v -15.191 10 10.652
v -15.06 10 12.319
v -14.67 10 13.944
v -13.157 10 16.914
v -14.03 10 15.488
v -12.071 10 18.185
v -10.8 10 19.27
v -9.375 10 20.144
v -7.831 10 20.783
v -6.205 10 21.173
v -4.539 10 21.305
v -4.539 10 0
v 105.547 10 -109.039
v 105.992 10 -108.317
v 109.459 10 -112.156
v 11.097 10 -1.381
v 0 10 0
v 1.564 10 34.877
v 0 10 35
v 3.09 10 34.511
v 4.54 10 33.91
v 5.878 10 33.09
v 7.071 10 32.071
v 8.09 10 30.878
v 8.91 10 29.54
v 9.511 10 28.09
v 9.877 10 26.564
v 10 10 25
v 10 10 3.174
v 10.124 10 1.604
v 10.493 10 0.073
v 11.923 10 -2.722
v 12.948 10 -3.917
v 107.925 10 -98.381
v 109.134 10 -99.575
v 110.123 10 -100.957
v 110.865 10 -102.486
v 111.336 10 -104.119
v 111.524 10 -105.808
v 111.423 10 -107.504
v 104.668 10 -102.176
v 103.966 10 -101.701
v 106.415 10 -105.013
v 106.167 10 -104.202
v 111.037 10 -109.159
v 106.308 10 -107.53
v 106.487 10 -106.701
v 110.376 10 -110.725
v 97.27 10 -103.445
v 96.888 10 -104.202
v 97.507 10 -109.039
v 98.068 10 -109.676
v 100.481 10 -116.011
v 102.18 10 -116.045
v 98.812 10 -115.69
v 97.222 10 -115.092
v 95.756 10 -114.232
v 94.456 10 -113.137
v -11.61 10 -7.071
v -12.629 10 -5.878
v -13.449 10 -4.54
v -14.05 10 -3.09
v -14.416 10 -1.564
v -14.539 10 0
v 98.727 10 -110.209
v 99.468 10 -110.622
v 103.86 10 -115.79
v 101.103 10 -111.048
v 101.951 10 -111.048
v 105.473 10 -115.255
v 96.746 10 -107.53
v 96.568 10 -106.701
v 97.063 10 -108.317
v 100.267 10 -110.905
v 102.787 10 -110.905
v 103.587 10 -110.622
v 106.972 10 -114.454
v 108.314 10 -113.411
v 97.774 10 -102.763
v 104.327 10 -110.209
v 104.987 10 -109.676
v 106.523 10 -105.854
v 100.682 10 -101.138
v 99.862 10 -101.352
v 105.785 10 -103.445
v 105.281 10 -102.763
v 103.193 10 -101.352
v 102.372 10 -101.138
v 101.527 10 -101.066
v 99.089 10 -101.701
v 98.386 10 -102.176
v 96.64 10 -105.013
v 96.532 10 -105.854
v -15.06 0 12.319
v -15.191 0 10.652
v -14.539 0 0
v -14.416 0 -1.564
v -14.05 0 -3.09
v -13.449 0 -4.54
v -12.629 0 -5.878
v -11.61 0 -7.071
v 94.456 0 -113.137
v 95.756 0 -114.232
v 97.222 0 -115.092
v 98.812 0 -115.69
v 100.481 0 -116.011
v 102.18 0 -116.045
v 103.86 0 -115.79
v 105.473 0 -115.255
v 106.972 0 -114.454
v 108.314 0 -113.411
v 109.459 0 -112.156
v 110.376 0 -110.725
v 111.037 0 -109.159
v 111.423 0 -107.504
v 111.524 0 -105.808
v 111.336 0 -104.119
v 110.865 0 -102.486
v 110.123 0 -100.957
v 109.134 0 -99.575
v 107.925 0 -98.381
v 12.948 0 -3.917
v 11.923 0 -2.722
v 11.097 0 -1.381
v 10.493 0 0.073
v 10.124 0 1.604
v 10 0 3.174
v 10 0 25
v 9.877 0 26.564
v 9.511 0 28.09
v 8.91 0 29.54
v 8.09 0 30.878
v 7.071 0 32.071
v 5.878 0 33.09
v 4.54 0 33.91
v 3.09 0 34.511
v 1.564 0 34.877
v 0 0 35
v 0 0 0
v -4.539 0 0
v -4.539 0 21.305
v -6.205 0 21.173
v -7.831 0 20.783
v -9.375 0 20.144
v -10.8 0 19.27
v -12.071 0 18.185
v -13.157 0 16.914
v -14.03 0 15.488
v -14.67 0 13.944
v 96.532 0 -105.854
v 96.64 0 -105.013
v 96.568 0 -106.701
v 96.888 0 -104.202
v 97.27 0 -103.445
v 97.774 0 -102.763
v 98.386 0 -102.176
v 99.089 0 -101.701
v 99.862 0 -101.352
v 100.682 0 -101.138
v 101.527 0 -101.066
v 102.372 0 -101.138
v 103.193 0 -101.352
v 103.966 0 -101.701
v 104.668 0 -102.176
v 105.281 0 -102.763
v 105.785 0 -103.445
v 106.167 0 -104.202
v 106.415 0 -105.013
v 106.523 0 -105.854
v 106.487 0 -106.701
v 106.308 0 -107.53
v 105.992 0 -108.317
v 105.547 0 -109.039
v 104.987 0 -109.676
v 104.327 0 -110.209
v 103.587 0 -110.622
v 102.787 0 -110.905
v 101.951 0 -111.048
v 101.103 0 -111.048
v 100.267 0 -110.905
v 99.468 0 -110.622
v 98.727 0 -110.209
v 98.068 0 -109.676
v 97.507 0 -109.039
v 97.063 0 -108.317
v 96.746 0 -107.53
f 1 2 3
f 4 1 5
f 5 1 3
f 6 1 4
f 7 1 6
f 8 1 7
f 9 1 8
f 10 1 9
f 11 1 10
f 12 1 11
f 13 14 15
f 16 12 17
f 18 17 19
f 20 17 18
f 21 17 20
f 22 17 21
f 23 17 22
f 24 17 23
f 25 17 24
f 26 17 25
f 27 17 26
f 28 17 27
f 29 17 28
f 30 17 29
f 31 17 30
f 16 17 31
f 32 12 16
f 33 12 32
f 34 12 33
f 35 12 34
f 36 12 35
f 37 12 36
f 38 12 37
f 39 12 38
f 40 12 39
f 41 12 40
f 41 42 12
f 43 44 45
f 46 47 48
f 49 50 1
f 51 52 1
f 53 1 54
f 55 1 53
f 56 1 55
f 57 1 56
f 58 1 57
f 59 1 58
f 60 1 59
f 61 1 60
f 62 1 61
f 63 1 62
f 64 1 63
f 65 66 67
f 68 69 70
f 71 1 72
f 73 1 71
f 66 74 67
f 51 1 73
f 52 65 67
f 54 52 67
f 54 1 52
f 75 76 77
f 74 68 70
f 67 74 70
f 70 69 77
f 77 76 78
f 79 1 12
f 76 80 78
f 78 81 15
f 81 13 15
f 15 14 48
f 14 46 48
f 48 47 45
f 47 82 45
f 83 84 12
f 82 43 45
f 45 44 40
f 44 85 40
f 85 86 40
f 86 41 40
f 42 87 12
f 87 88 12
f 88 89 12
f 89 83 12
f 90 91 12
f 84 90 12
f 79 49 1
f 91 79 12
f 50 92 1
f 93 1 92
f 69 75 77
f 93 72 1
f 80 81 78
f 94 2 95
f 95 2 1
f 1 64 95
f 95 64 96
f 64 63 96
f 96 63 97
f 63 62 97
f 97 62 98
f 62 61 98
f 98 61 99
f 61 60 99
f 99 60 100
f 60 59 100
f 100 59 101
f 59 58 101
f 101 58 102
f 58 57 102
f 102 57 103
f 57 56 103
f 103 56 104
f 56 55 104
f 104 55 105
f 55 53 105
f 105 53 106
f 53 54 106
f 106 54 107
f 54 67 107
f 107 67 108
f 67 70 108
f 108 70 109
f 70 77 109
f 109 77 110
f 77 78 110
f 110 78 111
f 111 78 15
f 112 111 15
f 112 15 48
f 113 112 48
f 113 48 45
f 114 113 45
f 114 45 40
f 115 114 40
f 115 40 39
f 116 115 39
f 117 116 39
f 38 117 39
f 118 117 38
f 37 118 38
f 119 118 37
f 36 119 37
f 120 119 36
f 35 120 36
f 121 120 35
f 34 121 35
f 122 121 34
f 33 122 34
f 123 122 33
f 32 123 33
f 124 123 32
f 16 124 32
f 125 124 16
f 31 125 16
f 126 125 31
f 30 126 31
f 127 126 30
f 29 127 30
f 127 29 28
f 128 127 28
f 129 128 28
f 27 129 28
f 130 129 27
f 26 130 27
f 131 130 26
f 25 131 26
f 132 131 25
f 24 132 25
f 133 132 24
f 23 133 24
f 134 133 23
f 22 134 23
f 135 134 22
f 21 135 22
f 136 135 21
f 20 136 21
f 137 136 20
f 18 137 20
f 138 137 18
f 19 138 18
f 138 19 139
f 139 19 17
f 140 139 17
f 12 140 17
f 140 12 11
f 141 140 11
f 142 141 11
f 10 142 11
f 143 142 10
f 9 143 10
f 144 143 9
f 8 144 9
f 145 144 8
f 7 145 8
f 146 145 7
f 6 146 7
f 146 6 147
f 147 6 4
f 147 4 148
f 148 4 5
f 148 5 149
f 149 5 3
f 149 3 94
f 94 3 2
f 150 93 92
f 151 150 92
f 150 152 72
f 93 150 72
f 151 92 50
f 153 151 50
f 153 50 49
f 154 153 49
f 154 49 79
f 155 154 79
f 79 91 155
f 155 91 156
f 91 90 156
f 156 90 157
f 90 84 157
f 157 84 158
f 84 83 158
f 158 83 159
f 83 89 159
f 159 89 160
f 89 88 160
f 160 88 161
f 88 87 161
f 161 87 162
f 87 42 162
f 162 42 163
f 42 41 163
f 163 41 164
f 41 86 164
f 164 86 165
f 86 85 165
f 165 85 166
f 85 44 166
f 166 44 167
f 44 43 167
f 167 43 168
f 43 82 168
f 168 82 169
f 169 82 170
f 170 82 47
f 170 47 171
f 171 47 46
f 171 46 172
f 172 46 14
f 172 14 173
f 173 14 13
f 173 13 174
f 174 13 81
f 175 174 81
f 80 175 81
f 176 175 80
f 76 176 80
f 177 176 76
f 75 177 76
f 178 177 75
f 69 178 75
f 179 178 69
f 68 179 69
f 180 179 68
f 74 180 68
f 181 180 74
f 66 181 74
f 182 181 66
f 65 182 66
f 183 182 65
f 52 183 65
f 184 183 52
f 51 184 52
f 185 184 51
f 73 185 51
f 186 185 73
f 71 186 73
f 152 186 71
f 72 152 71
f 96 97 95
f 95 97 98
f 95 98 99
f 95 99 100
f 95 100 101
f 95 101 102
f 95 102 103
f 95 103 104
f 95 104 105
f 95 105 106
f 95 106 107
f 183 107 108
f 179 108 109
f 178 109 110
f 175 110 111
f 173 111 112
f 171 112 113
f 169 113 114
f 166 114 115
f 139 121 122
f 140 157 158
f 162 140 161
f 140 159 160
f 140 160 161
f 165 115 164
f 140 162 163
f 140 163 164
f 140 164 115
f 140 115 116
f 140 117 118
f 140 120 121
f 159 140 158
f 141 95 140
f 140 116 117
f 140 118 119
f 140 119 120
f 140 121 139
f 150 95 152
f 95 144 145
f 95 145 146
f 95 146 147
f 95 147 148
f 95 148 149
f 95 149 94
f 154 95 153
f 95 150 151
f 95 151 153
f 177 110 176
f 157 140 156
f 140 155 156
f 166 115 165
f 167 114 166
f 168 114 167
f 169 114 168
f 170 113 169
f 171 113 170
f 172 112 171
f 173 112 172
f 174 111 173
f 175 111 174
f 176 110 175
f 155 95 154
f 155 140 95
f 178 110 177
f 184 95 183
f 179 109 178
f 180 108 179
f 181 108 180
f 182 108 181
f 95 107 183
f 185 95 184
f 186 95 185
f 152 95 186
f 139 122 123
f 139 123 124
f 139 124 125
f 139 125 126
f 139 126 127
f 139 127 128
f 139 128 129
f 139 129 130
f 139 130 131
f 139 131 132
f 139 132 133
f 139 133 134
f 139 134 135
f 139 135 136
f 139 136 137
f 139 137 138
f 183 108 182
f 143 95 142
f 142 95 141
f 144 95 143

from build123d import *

# Parameters (mm, degrees)
SALIENTE_EXTRUIR1_DEPTH = 10
CROQUIS2_R              = 5
CORTAR_EXTRUIR1_DEPTH   = 11


with BuildPart() as part:
    # Croquis1 → Saliente-Extruir1 (new body)
    with BuildSketch(Plane(origin=(0, 0, 0), x_dir=(1, 0, 0), z_dir=(0, 1, 0))):
        with BuildLine():
            Line((-4.53910409, 0), (0, 0))
            Line((0, 0), (0, -35))
            ThreePointArc((0, -35), (7.071067812, -32.071067812), (10, -25))
            Line((10, -25), (10, -3.173501178))
            ThreePointArc((10, -3.173501178), (10.766393259, 0.665835552), (12.948101308, 3.916683924))
            Line((12.948101308, 3.916683924), (107.92484737, 98.380547972))
            ThreePointArc((107.92484737, 98.380547972), (108.912854015, 112.807521211), (94.455845276, 113.13708499))
            Line((94.455845276, 113.13708499), (-11.610171902, 7.071067812))
            ThreePointArc((-11.610171902, 7.071067812), (-13.777899415, 3.826834324), (-14.53910409, 0))
            Line((-14.53910409, 0), (-15.191410871, -10.652306781))
            ThreePointArc((-15.191410871, -10.652306781), (-12.07142245, -18.18462514), (-4.53910409, -21.304613561))
            Line((-4.53910409, -21.304613561), (-4.53910409, 0))
        make_face()
    extrude(amount=SALIENTE_EXTRUIR1_DEPTH)

    # Croquis2 → Cortar-Extruir1 (cut, through all)
    with BuildSketch(Plane(origin=(0, 10, 0), x_dir=(1, 0, 0), z_dir=(0, 1, 0))):
        with Locations((101.526913088, 106.066017178)):
            Circle(CROQUIS2_R)
    extrude(amount=-CORTAR_EXTRUIR1_DEPTH, mode=Mode.SUBTRACT)


solid = part.part
